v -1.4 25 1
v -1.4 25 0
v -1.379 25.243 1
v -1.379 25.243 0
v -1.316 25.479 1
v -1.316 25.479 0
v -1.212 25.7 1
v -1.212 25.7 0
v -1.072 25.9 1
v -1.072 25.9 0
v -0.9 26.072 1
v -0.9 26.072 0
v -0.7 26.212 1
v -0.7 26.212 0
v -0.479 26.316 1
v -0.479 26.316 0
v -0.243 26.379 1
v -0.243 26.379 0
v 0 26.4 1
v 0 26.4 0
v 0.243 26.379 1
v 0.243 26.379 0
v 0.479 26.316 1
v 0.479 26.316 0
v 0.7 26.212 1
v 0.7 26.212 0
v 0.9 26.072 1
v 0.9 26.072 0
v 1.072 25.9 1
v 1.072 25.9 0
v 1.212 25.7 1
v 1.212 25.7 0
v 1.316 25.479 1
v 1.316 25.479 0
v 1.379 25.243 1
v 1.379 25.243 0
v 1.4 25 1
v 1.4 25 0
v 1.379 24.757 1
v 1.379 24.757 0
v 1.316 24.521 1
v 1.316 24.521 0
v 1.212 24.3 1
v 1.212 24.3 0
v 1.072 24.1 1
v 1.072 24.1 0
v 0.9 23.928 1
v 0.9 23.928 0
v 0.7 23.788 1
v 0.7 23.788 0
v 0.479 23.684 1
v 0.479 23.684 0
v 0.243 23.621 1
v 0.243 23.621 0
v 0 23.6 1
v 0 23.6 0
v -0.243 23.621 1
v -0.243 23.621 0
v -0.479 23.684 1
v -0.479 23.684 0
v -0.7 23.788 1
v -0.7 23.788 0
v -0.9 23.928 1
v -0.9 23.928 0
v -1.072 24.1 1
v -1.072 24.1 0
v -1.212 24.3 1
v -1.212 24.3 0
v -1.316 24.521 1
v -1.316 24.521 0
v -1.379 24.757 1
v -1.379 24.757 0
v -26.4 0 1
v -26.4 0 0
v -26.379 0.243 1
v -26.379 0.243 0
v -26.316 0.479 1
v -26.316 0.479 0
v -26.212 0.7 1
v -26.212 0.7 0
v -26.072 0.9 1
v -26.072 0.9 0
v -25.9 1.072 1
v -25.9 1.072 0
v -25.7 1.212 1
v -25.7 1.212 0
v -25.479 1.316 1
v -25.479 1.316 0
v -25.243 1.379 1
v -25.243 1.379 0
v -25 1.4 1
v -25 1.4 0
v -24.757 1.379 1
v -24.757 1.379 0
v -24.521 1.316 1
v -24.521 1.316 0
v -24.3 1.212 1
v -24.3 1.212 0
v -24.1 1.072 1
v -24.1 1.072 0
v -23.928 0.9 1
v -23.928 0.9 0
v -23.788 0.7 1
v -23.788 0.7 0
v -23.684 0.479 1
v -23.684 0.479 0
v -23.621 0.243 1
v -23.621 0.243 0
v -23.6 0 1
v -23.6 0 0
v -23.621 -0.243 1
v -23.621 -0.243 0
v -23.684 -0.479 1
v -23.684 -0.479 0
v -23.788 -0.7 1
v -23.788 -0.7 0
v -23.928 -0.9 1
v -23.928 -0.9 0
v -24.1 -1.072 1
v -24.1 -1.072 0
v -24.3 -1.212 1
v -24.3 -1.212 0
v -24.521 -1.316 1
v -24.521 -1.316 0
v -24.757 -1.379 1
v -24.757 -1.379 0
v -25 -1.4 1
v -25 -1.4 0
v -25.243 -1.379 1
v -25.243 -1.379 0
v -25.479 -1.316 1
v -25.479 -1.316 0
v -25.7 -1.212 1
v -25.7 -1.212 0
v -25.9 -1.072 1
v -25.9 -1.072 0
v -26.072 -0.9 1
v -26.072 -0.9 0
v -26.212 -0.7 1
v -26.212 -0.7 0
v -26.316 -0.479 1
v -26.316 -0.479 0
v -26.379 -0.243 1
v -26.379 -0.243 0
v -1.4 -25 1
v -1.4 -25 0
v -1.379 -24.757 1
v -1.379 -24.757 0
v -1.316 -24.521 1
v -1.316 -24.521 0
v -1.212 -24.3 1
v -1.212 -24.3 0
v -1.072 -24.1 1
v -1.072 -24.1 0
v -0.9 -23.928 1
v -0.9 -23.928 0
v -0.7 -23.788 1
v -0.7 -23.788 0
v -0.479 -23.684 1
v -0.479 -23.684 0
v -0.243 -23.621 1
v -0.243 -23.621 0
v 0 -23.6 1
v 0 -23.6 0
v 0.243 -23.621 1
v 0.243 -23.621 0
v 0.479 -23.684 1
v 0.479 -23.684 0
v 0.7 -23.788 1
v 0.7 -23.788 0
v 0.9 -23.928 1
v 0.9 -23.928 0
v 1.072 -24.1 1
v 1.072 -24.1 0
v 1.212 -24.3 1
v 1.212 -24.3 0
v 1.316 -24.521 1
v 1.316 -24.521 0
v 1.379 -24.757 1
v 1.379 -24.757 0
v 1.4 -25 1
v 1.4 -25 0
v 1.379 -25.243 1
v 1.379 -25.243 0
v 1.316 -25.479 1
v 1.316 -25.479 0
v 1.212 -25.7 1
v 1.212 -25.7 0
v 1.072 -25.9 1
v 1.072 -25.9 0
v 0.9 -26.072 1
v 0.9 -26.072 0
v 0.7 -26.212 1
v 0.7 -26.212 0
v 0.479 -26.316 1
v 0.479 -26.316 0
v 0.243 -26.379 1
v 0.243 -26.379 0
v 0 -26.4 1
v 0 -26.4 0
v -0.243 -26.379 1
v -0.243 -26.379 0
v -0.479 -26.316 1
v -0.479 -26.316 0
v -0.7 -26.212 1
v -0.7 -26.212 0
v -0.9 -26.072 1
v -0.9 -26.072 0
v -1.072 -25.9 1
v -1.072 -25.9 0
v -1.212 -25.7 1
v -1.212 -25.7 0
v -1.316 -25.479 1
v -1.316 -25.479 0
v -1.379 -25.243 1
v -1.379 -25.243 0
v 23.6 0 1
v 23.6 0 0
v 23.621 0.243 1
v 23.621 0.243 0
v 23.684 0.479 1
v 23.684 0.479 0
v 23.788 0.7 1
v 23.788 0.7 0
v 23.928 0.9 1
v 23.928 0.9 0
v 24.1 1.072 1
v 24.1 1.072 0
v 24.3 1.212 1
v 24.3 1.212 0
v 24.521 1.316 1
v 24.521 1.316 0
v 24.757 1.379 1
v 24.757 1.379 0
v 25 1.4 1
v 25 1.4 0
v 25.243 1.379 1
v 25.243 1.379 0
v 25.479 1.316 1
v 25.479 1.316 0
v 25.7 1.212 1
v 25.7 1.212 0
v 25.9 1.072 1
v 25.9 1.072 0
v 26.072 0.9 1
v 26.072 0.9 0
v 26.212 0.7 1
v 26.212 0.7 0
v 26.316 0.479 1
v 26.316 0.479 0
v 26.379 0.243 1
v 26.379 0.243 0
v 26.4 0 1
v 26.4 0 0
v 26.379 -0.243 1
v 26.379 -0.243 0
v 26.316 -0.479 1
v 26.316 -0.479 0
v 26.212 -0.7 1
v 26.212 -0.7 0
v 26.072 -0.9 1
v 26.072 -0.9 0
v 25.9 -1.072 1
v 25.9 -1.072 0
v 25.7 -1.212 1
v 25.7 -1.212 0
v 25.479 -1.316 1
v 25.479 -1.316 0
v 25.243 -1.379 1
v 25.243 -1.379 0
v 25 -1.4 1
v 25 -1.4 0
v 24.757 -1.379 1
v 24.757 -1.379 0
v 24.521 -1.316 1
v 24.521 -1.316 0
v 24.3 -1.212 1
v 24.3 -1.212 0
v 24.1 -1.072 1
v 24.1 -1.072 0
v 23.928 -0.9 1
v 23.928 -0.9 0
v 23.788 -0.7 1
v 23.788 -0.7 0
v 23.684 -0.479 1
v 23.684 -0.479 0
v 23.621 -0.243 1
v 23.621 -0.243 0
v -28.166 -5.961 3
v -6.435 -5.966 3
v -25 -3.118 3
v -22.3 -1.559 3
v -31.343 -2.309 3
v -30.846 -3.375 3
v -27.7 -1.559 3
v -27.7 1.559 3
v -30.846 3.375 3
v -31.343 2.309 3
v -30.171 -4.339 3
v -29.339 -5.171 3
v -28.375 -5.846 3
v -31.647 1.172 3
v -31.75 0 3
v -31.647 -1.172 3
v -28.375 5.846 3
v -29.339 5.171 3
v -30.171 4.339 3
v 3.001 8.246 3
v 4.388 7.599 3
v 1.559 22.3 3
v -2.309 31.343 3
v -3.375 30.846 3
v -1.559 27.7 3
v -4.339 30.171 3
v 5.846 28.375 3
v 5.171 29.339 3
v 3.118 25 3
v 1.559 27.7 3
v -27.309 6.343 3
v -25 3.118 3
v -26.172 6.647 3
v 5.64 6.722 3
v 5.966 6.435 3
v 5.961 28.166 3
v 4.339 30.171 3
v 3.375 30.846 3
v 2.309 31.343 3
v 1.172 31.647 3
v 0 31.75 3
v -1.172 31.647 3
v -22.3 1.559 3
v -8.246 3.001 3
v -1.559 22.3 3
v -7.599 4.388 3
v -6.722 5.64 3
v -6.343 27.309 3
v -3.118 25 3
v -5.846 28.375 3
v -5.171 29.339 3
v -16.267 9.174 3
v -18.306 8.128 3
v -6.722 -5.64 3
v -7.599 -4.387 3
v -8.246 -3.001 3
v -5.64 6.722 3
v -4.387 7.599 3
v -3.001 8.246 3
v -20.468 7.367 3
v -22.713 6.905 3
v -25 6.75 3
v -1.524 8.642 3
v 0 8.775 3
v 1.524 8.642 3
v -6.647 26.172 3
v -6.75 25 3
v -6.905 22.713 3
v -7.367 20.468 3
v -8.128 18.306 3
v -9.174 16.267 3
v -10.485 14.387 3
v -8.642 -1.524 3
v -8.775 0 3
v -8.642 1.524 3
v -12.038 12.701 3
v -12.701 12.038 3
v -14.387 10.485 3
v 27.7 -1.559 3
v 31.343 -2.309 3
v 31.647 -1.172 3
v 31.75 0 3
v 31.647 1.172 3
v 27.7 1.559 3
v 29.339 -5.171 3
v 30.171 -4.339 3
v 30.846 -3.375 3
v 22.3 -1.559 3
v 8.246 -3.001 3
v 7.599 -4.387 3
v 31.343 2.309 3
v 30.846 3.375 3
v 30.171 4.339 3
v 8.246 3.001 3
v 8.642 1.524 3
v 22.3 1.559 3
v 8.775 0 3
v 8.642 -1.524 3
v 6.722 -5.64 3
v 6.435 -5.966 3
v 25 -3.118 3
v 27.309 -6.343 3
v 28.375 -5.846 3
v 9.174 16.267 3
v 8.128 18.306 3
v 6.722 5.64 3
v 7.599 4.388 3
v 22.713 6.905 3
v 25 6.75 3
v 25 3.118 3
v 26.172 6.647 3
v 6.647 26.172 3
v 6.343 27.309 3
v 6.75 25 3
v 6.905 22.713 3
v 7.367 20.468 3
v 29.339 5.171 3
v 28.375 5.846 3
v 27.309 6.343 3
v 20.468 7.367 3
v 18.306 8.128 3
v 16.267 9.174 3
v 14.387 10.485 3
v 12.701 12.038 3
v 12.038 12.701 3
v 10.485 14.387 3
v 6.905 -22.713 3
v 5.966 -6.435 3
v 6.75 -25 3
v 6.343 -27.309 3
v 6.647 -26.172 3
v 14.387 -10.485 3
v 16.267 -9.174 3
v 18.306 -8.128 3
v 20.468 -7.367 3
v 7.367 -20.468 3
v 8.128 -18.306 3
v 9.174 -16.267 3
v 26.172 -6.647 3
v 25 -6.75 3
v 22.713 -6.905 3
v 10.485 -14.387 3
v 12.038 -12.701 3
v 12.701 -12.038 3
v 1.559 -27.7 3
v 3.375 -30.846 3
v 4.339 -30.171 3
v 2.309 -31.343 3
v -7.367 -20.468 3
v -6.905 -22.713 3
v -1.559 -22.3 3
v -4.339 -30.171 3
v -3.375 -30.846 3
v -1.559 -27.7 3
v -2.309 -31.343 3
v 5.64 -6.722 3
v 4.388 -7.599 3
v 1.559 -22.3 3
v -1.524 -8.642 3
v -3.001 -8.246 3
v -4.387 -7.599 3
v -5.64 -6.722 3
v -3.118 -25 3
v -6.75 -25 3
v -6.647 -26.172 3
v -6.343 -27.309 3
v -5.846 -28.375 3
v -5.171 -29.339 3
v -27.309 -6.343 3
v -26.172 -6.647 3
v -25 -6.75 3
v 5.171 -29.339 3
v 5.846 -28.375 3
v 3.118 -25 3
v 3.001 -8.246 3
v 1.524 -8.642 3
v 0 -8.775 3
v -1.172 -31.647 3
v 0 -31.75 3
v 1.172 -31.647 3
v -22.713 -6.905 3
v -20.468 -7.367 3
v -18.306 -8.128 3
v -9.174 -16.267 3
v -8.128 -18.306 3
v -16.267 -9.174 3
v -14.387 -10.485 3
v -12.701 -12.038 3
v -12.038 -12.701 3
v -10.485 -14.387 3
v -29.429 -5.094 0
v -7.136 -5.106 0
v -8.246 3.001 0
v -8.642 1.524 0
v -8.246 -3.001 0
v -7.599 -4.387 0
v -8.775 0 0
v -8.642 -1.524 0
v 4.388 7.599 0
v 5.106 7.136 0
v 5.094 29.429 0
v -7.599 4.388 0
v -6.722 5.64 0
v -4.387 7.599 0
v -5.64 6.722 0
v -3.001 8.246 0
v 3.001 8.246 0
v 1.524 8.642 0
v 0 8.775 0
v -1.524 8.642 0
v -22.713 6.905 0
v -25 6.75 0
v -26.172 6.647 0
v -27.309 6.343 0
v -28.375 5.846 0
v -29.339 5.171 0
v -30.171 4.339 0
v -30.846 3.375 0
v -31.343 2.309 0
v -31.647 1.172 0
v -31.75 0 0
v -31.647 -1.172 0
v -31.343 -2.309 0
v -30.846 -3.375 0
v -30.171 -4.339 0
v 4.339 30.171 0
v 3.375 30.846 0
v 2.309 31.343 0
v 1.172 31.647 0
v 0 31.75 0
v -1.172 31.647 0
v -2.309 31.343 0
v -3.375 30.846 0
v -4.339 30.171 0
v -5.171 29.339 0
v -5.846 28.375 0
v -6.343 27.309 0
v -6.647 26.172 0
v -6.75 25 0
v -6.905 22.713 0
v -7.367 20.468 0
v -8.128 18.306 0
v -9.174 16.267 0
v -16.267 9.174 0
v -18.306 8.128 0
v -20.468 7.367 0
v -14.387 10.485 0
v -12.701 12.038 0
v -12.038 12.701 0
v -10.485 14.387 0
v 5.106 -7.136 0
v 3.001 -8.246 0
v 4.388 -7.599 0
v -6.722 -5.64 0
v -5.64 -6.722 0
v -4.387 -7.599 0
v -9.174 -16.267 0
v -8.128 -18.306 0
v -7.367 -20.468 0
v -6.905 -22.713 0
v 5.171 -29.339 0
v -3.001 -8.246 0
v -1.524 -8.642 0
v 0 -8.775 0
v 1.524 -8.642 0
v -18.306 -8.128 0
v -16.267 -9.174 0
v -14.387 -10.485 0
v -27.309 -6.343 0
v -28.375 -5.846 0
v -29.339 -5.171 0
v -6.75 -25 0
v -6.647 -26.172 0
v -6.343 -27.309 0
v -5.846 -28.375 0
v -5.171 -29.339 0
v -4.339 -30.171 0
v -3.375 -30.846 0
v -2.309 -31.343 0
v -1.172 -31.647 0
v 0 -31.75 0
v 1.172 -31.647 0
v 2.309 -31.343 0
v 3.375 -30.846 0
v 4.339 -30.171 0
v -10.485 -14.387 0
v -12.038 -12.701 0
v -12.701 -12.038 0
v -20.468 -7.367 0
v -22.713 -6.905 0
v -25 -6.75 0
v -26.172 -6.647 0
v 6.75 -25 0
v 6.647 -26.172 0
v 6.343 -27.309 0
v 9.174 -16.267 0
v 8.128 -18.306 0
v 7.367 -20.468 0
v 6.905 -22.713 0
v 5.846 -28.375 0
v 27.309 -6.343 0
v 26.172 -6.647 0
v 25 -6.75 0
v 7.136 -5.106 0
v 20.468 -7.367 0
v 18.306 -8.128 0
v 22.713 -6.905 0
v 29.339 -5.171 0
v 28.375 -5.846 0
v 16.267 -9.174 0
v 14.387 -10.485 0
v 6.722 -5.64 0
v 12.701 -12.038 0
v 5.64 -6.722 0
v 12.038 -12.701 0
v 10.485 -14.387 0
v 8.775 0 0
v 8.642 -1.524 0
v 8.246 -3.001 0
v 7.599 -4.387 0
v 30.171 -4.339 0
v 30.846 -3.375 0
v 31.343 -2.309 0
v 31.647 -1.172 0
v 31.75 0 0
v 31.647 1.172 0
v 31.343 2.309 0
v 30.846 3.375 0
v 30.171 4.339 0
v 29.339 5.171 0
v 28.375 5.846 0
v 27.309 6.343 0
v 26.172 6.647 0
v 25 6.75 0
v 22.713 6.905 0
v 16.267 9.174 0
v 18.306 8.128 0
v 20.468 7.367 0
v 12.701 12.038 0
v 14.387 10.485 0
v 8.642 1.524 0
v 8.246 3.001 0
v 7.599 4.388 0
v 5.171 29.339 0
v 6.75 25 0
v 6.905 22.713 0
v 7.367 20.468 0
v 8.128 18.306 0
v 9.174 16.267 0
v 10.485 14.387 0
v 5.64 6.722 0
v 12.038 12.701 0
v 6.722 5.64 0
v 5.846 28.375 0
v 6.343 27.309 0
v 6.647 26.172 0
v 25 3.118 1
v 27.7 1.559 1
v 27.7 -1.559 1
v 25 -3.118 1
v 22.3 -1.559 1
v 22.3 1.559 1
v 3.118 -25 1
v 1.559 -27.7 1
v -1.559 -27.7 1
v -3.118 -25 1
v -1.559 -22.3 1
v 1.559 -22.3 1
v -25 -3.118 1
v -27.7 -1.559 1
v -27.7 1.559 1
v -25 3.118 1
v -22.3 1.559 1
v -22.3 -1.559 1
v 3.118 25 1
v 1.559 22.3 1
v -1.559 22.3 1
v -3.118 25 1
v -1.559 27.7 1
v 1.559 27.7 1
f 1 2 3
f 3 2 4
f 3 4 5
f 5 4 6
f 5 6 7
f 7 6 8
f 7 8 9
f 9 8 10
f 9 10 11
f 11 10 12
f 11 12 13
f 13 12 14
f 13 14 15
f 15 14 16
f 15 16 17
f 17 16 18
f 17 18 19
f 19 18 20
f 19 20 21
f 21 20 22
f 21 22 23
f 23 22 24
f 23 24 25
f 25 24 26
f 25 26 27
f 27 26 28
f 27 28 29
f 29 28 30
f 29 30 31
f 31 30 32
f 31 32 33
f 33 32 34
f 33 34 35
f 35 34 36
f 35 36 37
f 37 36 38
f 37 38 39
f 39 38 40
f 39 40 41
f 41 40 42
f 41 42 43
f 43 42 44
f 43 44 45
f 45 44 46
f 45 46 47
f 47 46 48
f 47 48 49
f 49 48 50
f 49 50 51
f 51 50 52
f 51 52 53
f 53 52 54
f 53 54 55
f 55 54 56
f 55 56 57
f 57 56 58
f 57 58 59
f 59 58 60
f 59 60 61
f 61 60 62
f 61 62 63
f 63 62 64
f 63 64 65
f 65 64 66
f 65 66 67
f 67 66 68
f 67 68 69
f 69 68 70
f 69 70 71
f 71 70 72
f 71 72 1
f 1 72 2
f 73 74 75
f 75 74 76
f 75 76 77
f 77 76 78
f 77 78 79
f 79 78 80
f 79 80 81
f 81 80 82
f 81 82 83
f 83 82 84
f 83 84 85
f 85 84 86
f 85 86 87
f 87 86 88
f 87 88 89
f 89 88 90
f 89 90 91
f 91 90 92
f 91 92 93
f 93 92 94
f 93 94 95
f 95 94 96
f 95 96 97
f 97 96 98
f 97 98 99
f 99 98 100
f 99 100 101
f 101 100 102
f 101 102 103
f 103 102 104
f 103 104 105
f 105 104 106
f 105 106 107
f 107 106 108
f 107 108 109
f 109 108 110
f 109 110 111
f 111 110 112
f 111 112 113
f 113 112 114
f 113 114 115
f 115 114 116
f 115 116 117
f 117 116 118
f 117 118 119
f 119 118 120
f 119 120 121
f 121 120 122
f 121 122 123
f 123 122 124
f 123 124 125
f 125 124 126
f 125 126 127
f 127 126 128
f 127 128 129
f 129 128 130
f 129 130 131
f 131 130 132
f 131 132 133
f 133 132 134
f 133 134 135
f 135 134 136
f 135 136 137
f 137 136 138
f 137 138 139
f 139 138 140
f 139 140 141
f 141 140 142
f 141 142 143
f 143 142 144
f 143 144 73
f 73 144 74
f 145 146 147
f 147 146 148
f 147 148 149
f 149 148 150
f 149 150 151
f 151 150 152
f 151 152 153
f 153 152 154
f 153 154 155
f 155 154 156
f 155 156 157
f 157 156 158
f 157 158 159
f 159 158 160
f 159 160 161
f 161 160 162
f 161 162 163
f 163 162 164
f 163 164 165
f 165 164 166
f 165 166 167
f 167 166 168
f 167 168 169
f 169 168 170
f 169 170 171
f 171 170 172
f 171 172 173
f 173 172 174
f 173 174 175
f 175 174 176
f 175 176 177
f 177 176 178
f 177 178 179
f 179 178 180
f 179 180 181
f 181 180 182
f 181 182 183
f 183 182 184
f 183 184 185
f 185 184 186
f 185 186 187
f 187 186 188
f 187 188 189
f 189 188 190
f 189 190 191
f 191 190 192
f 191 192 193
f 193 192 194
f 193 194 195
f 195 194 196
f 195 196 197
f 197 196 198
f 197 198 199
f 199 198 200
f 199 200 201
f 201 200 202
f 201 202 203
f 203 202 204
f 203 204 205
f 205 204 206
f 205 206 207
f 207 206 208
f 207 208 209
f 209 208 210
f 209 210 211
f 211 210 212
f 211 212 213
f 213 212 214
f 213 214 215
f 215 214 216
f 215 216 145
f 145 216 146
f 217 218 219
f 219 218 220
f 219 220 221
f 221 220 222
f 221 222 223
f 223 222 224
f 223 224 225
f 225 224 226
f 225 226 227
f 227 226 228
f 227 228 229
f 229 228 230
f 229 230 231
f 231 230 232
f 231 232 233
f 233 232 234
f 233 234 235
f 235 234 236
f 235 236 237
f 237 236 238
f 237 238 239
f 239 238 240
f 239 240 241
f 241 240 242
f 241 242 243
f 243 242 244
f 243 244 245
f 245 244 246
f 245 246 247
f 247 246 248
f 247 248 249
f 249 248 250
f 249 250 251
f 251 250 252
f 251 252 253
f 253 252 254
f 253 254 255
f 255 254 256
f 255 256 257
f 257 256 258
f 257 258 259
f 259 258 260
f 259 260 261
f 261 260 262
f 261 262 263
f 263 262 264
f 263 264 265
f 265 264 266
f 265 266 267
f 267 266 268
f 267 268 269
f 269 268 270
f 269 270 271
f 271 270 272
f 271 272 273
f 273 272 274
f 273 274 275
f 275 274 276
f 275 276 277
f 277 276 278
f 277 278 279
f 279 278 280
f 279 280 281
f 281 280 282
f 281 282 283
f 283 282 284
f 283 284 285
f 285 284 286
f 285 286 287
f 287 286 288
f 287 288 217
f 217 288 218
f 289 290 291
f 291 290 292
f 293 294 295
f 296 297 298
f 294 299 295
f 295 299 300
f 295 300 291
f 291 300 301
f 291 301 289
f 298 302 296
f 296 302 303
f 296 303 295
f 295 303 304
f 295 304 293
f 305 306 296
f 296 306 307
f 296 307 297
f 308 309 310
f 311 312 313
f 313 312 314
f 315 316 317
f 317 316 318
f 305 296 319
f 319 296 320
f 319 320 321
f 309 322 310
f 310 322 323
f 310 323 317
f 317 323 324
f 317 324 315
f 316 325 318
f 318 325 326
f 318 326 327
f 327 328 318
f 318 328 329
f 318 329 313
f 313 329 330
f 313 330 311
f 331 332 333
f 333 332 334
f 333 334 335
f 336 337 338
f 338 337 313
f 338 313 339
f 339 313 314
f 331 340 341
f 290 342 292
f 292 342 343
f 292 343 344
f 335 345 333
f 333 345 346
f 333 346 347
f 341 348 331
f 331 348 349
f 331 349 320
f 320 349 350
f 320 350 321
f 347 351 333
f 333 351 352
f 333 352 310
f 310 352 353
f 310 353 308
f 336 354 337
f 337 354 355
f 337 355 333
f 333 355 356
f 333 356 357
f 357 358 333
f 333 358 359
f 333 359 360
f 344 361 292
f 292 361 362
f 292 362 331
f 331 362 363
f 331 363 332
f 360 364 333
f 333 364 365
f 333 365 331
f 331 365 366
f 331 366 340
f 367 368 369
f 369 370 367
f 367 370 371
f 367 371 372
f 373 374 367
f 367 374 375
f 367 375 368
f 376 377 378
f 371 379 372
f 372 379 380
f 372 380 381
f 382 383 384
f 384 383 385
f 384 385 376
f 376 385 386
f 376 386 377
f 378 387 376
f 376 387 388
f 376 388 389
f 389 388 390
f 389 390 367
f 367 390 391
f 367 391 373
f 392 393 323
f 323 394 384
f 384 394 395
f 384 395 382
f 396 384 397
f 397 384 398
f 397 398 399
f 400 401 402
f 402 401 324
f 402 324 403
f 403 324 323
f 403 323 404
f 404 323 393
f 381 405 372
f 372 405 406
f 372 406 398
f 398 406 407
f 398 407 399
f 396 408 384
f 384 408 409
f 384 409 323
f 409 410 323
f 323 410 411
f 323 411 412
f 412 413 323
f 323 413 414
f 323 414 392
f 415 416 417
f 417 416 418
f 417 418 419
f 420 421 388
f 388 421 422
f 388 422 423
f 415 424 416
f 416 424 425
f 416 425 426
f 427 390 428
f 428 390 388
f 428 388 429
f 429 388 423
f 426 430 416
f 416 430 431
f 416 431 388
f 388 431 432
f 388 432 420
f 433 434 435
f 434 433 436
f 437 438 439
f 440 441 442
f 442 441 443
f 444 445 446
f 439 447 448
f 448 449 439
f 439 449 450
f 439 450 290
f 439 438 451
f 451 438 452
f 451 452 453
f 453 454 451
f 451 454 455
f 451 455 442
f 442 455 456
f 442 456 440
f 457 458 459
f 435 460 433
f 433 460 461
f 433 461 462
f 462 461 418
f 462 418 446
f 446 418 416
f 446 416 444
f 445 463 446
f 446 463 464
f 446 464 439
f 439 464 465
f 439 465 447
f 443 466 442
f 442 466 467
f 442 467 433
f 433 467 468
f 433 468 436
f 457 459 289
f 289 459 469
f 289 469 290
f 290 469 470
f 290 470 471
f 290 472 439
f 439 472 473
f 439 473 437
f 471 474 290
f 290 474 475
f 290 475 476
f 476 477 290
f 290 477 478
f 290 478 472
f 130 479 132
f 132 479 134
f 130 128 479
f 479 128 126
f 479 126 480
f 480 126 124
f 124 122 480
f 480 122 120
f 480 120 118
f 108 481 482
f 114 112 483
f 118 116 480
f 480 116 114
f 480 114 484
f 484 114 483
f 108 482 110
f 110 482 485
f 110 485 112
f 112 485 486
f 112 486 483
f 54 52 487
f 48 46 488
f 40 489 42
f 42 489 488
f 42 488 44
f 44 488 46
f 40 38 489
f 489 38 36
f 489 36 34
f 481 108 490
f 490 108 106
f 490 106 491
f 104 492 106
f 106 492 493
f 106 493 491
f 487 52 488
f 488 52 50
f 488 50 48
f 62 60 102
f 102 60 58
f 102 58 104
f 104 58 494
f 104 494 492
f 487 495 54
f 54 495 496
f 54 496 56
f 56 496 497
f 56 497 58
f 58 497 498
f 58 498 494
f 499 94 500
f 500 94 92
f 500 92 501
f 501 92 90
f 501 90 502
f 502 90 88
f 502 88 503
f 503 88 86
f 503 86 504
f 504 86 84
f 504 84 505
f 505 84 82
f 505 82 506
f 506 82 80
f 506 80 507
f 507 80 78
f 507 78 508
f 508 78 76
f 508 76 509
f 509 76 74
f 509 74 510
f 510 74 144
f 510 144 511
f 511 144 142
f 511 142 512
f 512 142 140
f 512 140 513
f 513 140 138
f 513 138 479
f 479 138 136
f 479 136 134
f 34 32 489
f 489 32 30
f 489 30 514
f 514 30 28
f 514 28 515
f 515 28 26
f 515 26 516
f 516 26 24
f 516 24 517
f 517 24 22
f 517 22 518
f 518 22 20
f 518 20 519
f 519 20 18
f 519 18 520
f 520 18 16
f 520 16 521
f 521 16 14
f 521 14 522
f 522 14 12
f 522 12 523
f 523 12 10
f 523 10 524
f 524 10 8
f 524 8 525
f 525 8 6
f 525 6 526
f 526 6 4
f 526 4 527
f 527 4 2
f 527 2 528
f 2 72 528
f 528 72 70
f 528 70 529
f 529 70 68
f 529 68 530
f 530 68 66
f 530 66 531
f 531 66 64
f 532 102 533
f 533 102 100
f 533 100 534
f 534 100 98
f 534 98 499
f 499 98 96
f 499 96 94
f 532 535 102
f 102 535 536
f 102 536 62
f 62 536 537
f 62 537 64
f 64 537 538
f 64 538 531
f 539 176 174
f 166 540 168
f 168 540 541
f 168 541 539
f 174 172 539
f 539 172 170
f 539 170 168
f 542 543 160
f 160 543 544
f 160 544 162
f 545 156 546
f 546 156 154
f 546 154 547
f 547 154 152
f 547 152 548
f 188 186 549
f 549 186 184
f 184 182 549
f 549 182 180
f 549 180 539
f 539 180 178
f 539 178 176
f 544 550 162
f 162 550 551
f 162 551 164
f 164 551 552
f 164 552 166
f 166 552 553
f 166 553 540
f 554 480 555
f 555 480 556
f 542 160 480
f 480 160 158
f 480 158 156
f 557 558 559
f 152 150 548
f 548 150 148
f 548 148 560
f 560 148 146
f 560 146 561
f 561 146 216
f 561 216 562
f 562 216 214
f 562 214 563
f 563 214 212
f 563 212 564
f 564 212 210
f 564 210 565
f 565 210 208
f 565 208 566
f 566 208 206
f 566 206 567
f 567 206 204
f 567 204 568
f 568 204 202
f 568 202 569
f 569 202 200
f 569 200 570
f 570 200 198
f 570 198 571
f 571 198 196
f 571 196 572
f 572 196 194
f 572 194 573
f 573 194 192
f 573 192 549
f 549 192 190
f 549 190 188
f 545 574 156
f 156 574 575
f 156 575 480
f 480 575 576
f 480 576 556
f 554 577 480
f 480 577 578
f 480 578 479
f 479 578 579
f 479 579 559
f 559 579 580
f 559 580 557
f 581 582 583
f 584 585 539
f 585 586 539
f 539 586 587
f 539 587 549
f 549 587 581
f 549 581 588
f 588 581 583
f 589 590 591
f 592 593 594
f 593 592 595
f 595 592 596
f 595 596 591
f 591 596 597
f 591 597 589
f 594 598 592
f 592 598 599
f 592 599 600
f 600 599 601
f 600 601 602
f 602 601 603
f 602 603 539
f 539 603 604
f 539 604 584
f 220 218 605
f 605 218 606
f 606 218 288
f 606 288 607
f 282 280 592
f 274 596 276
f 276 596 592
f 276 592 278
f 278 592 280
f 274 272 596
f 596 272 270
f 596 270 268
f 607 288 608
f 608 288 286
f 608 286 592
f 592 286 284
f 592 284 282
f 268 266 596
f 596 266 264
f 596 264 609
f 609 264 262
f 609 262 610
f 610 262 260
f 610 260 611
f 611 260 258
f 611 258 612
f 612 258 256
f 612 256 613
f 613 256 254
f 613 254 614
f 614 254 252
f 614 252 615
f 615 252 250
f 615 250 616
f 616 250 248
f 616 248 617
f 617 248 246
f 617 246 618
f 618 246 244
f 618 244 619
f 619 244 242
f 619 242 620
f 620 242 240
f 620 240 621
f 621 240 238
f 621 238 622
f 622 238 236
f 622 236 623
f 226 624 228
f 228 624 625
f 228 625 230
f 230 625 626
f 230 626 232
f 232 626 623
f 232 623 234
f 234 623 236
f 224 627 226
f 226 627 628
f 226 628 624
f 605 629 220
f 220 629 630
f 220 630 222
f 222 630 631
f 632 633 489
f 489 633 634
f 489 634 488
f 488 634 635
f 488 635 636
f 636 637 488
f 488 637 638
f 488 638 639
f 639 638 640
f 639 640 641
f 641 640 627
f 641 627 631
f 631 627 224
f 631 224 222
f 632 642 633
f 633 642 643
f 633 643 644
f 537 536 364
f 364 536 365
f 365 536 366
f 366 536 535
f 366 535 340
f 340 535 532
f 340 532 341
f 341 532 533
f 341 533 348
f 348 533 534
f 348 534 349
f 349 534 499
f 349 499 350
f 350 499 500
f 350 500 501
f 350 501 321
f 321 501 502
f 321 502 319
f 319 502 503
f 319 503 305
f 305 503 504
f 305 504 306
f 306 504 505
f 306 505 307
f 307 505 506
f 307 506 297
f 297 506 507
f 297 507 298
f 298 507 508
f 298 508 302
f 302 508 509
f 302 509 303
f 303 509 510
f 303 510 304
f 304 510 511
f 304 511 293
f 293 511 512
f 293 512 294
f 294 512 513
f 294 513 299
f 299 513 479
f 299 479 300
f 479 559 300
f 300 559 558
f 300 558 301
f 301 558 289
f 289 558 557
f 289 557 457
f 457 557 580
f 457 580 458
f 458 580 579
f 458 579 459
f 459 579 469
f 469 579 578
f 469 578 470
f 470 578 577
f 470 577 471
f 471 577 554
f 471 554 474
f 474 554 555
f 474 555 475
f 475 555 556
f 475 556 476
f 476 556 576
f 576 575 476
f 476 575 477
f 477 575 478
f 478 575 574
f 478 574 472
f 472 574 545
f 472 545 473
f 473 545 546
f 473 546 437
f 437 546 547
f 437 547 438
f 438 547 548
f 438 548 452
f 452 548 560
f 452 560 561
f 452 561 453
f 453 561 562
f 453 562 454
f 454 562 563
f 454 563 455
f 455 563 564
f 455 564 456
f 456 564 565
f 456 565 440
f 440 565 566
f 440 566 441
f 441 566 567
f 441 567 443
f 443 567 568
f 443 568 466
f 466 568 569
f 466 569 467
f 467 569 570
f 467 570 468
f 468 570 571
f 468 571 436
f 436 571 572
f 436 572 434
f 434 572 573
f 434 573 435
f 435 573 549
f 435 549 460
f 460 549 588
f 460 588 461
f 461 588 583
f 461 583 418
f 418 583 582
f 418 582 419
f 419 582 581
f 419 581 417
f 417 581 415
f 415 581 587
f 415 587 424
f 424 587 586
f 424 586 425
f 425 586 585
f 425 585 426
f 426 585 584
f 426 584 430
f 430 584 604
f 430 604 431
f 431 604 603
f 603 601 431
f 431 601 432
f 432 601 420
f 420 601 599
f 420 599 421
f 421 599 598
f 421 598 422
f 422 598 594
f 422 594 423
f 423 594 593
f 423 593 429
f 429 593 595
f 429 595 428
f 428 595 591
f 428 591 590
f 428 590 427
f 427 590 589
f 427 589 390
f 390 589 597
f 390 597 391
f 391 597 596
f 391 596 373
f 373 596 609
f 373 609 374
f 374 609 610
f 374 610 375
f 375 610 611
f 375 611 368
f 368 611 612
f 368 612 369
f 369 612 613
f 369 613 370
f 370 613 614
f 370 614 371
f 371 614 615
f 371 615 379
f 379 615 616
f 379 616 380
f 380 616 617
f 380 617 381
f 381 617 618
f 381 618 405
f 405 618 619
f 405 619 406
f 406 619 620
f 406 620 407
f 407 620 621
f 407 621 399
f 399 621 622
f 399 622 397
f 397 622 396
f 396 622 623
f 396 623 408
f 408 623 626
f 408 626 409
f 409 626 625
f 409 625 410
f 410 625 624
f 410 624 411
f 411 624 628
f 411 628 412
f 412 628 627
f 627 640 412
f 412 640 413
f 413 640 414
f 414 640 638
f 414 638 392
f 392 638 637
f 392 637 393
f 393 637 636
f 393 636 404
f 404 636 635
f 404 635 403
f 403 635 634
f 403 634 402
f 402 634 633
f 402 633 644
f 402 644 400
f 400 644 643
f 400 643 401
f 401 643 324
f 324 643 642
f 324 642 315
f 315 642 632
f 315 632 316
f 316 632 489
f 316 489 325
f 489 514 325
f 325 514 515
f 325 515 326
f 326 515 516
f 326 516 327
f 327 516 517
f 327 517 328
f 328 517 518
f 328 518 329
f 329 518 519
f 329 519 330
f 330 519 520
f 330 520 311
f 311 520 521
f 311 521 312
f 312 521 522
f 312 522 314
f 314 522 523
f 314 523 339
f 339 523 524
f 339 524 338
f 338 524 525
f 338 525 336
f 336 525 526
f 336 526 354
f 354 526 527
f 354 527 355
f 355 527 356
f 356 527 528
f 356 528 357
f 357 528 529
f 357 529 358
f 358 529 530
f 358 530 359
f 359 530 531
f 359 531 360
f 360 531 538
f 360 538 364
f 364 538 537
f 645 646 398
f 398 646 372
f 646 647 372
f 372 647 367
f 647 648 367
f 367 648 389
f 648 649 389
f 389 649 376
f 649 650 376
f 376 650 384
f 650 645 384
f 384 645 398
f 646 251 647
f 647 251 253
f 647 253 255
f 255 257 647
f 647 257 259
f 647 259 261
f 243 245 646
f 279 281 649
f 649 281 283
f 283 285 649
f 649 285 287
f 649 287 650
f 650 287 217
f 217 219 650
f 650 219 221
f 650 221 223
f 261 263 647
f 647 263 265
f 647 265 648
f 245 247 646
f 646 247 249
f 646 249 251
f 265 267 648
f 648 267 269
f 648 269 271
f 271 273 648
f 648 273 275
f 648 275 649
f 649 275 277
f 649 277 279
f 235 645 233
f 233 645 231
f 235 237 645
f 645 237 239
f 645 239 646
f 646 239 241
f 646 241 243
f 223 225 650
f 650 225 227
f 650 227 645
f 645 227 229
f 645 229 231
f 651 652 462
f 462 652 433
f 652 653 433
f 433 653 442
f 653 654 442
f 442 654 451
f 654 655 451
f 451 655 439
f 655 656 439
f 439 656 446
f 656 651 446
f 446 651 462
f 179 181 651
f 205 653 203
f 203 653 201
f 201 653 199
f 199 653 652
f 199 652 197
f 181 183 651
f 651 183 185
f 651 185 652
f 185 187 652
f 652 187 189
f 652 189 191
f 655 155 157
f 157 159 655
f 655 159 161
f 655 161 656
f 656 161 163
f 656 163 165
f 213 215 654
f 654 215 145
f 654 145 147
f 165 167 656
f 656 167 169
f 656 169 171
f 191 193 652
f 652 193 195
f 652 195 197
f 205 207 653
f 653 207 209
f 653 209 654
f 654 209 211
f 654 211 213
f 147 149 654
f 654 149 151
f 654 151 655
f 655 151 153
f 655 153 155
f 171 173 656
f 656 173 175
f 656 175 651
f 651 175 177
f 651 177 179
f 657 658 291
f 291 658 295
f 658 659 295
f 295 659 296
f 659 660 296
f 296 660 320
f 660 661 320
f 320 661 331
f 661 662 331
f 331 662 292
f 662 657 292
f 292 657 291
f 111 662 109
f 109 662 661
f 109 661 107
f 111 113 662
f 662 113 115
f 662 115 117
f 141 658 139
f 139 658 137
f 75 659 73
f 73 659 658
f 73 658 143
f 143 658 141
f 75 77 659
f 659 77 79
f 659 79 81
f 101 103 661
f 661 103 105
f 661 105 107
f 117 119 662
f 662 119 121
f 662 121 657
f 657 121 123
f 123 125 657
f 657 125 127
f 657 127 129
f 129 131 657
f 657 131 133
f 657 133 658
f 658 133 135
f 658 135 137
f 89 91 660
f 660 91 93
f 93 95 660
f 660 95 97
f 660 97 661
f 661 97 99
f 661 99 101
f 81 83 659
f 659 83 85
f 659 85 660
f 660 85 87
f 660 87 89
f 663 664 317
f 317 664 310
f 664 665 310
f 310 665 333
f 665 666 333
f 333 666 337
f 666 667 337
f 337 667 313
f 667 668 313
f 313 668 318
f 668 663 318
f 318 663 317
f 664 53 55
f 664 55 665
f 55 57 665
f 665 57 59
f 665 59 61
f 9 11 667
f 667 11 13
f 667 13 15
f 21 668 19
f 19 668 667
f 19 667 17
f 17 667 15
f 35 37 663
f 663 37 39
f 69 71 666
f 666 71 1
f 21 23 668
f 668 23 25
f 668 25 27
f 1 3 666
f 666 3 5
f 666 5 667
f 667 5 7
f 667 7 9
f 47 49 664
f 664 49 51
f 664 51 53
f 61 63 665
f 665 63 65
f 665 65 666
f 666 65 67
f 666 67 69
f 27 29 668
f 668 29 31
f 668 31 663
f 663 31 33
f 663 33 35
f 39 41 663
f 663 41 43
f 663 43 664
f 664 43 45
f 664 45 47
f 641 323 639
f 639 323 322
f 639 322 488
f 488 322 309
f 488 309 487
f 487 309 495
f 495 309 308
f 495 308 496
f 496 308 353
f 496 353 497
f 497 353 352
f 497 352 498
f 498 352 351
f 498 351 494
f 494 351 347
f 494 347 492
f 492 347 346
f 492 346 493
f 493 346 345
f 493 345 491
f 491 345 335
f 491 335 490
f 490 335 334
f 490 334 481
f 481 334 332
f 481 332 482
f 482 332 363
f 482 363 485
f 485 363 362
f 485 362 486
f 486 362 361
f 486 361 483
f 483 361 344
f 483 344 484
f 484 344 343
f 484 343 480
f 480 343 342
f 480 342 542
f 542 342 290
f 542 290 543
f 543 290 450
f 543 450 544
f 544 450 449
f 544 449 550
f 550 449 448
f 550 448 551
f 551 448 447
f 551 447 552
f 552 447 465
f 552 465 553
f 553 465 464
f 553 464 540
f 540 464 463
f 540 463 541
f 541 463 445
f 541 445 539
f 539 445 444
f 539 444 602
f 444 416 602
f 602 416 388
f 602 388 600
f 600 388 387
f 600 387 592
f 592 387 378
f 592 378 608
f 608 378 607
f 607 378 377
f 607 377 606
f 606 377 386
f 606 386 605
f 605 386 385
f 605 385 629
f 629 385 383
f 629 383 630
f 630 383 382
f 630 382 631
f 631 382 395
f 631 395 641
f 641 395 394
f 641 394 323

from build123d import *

# Parameters (mm, degrees)
SKETCH1_R           = 1.4
BOSS_EXTRUDE1_DEPTH = 3
CUT_EXTRUDE1_DEPTH  = 2
CUT_EXTRUDE2_REACH  = 47.001
SKETCH3_R           = 8.775


with BuildPart() as part:
    # Sketch1 → Boss-Extrude1 (new body)
    with BuildSketch(Plane.XY):
        with BuildLine():
            ThreePointArc((6.75, 25), (0, 31.75), (-6.75, 25))
            ThreePointArc((-6.75, 25), (-8.128131702, 18.306346632), (-12.038357667, 12.701493797))
            ThreePointArc((-12.038357667, 12.701493797), (-12.374368671, 12.374368671), (-12.701493797, 12.038357667))
            ThreePointArc((-12.701493797, 12.038357667), (-18.306346632, 8.128131702), (-25, 6.75))
            ThreePointArc((-25, 6.75), (-31.75, 0), (-25, -6.75))
            ThreePointArc((-25, -6.75), (-18.306346632, -8.128131702), (-12.701493797, -12.038357667))
            ThreePointArc((-12.701493797, -12.038357667), (-12.374368671, -12.374368671), (-12.038357667, -12.701493797))
            ThreePointArc((-12.038357667, -12.701493797), (-8.128131702, -18.306346632), (-6.75, -25))
            ThreePointArc((-6.75, -25), (0, -31.75), (6.75, -25))
            ThreePointArc((6.75, -25), (8.128131702, -18.306346632), (12.038357667, -12.701493797))
            ThreePointArc((12.038357667, -12.701493797), (12.374368671, -12.374368671), (12.701493797, -12.038357667))
            ThreePointArc((12.701493797, -12.038357667), (18.306346632, -8.128131702), (25, -6.75))
            ThreePointArc((25, -6.75), (31.75, 0), (25, 6.75))
            ThreePointArc((25, 6.75), (18.306346632, 8.128131702), (12.701493797, 12.038357667))
            ThreePointArc((12.701493797, 12.038357667), (12.374368671, 12.374368671), (12.038357667, 12.701493797))
            ThreePointArc((12.038357667, 12.701493797), (8.128131702, 18.306346632), (6.75, 25))
        make_face()
        with Locations((0, 25)):
            Circle(SKETCH1_R, mode=Mode.SUBTRACT)
        with Locations((-25, 0)):
            Circle(SKETCH1_R, mode=Mode.SUBTRACT)
        with Locations((0, -25)):
            Circle(SKETCH1_R, mode=Mode.SUBTRACT)
        with Locations((25, 0)):
            Circle(SKETCH1_R, mode=Mode.SUBTRACT)
    extrude(amount=BOSS_EXTRUDE1_DEPTH)

    # Sketch2 → Cut-Extrude1 (cut)
    with BuildSketch(Plane.XY.offset(3)):
        Polygon((3.117691454, 25), (1.558845727, 27.7), (-1.558845727, 27.7), (-3.117691454, 25), (-1.558845727, 22.3), (1.558845727, 22.3), align=None)
        Polygon((25, 3.117691454), (22.3, 1.558845727), (22.3, -1.558845727), (25, -3.117691454), (27.7, -1.558845727), (27.7, 1.558845727), align=None)
        Polygon((3.117691454, -25), (1.558845727, -22.3), (-1.558845727, -22.3), (-3.117691454, -25), (-1.558845727, -27.7), (1.558845727, -27.7), align=None)
        Polygon((-25, -3.117691454), (-22.3, -1.558845727), (-22.3, 1.558845727), (-25, 3.117691454), (-27.7, 1.558845727), (-27.7, -1.558845727), align=None)
    extrude(amount=-CUT_EXTRUDE1_DEPTH, mode=Mode.SUBTRACT)

    # Sketch3 → Cut-Extrude2 (cut, up to next)
    with BuildSketch(Plane.XY.offset(3), mode=Mode.PRIVATE) as cut_extrude2_sk1:
        Circle(SKETCH3_R)
    cut_extrude2_tool1 = extrude(cut_extrude2_sk1.sketch, amount=-CUT_EXTRUDE2_REACH, mode=Mode.PRIVATE) & part.part
    add(cut_extrude2_tool1.solids().sort_by_distance((0, 0, 3))[0], mode=Mode.SUBTRACT)


solid = part.part
